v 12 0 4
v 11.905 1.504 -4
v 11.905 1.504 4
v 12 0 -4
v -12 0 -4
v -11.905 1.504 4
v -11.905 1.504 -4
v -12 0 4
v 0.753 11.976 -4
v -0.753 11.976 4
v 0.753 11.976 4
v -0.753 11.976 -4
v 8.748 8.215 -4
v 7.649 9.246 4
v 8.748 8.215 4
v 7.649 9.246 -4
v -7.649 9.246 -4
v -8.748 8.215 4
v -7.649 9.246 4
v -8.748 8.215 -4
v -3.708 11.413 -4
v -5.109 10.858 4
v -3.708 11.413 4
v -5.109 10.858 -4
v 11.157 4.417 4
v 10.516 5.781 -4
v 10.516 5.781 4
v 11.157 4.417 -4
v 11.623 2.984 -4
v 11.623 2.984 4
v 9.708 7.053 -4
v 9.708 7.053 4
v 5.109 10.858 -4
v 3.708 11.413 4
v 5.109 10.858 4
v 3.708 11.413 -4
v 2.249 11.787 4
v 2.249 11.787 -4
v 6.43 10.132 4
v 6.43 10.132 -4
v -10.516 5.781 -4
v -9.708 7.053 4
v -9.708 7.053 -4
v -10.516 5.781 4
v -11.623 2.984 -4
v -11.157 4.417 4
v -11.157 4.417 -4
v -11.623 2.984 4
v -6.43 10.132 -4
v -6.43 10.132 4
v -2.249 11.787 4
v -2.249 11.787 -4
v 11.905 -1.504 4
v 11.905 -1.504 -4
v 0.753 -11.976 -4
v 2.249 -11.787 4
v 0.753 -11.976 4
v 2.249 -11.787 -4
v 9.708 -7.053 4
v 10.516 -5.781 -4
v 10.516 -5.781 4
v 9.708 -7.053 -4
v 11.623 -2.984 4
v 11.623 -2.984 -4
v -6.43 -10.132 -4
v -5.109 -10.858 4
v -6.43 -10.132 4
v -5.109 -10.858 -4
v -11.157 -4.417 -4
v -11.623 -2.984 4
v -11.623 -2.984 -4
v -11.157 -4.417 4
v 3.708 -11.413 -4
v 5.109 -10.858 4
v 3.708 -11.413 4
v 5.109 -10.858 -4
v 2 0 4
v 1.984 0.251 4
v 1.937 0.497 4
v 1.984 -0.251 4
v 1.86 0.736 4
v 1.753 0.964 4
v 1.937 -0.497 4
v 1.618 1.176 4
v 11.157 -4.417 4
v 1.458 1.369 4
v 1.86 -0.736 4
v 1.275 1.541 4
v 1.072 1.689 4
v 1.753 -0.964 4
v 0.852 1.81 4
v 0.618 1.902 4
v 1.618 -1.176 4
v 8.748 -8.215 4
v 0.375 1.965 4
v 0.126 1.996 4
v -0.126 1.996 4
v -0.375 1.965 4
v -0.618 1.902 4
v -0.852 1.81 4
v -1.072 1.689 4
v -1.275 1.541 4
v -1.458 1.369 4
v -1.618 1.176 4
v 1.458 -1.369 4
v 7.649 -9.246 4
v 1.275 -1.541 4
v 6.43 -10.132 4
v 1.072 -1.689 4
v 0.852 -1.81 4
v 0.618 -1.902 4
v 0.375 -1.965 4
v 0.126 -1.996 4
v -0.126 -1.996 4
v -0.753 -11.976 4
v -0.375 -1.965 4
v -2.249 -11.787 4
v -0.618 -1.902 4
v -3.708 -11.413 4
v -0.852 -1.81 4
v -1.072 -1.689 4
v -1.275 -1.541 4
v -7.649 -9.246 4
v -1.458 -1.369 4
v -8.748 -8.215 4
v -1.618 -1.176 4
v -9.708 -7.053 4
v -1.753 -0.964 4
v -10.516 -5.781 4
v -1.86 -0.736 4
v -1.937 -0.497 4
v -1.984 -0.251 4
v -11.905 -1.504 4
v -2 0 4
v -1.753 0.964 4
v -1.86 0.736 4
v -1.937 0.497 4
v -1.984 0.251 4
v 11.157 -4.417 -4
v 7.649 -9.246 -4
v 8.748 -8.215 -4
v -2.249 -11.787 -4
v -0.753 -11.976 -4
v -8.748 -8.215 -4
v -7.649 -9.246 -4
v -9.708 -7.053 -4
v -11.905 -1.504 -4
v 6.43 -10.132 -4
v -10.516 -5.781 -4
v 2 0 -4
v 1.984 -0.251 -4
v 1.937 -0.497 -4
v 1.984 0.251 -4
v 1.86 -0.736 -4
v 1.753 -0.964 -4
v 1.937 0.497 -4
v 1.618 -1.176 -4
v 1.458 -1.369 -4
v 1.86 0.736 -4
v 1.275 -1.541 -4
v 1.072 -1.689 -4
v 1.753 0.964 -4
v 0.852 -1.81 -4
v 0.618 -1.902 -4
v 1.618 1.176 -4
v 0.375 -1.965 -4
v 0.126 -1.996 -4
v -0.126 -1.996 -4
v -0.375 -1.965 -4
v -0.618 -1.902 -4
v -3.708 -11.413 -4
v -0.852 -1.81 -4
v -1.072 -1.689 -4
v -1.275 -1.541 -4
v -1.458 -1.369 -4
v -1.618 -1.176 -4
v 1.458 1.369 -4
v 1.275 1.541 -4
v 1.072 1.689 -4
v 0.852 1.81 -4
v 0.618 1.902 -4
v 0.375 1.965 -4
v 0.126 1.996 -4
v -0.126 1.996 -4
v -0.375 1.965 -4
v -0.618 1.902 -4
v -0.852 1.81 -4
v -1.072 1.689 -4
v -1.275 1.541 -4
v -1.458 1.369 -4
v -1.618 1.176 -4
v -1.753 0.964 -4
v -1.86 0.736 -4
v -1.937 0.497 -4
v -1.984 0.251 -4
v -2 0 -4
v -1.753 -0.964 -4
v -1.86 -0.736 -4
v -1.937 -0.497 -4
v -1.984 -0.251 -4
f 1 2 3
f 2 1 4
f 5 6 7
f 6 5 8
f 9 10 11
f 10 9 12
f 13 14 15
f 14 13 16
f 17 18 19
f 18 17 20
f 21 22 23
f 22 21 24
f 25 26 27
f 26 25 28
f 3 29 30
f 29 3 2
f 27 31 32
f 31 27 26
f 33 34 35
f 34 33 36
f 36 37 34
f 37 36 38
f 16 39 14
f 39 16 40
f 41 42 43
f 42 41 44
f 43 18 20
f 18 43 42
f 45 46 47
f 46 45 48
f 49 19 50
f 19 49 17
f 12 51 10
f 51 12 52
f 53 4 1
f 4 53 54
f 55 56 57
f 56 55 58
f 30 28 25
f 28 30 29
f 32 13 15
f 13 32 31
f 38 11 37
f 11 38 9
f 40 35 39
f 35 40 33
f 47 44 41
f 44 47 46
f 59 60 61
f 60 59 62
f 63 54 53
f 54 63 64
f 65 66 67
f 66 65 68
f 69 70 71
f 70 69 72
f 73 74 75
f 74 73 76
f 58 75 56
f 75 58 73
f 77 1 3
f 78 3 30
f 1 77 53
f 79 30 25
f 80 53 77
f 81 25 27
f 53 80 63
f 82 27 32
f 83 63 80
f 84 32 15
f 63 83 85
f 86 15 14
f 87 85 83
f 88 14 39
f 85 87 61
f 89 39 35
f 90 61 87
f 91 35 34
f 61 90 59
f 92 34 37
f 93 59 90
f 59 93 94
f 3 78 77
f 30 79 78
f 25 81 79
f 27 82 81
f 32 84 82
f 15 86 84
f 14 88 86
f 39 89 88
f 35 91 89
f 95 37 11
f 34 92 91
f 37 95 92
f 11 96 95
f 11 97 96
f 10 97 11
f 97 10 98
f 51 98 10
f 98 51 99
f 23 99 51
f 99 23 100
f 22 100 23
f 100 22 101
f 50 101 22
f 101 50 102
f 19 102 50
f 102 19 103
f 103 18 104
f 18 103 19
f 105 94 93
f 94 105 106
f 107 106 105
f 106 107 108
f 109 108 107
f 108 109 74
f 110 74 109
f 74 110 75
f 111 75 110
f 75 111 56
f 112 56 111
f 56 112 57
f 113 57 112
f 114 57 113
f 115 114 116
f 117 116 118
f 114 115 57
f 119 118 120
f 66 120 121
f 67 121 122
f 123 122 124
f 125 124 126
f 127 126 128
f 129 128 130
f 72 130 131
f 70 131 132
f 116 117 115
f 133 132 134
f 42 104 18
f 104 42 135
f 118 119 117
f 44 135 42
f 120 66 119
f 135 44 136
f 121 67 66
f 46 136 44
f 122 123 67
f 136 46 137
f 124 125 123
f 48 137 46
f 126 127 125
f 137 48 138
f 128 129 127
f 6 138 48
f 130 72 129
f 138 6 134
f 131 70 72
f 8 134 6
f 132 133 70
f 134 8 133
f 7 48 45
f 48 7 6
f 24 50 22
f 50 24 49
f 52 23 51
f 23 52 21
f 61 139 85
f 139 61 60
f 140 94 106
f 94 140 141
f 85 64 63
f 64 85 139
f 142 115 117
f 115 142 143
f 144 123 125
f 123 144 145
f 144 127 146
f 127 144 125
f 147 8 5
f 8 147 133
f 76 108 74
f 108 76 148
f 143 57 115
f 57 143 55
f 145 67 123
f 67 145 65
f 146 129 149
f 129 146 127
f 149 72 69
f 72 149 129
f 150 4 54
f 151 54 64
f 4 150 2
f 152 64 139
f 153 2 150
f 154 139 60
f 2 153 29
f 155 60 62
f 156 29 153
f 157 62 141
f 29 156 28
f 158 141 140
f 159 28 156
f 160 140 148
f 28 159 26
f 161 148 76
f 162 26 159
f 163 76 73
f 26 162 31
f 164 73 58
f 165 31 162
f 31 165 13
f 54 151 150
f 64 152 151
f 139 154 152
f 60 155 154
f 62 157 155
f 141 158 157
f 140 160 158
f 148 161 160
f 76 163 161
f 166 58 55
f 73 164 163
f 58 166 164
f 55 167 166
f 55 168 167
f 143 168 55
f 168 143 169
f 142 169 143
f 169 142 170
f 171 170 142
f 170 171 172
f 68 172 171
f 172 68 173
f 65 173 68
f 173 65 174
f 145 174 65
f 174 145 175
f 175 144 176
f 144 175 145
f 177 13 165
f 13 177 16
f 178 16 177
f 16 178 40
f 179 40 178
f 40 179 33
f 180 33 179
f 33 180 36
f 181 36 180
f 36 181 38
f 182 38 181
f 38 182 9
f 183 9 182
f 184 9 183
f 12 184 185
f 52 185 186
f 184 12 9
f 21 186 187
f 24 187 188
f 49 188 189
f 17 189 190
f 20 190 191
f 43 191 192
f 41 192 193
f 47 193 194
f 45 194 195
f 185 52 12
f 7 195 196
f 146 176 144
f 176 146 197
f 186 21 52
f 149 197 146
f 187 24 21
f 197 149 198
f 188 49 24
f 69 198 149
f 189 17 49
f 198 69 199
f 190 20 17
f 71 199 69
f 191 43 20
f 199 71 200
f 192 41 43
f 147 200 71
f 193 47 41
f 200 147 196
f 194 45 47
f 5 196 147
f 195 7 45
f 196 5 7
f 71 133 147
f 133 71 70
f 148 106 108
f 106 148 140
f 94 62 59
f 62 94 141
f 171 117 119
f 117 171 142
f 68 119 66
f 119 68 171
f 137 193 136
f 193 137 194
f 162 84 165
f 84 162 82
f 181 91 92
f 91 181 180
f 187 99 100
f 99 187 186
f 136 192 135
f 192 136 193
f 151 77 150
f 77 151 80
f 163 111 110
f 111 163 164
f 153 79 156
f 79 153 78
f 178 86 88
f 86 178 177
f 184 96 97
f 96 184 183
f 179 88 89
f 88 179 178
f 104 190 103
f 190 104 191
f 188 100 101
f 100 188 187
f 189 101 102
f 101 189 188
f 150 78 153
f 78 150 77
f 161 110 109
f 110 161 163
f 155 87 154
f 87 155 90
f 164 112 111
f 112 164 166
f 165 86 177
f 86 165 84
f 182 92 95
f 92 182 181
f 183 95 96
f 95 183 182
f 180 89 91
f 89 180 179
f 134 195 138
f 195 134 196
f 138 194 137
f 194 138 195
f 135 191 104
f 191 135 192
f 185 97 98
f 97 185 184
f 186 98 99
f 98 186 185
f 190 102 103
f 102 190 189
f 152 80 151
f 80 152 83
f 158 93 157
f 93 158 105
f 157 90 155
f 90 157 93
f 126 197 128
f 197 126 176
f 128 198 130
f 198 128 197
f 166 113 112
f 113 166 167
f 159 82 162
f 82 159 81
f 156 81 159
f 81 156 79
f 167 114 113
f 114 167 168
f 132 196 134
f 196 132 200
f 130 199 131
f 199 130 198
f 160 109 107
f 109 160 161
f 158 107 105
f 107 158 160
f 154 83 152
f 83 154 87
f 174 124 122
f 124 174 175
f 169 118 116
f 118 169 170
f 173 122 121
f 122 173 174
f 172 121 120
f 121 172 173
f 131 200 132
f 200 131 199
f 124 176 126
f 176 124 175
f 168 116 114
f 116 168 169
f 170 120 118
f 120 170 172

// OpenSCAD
$fn = 50;


difference() {
	union() {
		translate(v = [0, 0, -4.0000000000]) {
			cylinder(h = 8, r = 12.0000000000);
		}
	}
	union() {
		translate(v = [0, 0, -100.0000000000]) {
			cylinder(h = 200, r = 2.0000000000);
		}
	}
}
